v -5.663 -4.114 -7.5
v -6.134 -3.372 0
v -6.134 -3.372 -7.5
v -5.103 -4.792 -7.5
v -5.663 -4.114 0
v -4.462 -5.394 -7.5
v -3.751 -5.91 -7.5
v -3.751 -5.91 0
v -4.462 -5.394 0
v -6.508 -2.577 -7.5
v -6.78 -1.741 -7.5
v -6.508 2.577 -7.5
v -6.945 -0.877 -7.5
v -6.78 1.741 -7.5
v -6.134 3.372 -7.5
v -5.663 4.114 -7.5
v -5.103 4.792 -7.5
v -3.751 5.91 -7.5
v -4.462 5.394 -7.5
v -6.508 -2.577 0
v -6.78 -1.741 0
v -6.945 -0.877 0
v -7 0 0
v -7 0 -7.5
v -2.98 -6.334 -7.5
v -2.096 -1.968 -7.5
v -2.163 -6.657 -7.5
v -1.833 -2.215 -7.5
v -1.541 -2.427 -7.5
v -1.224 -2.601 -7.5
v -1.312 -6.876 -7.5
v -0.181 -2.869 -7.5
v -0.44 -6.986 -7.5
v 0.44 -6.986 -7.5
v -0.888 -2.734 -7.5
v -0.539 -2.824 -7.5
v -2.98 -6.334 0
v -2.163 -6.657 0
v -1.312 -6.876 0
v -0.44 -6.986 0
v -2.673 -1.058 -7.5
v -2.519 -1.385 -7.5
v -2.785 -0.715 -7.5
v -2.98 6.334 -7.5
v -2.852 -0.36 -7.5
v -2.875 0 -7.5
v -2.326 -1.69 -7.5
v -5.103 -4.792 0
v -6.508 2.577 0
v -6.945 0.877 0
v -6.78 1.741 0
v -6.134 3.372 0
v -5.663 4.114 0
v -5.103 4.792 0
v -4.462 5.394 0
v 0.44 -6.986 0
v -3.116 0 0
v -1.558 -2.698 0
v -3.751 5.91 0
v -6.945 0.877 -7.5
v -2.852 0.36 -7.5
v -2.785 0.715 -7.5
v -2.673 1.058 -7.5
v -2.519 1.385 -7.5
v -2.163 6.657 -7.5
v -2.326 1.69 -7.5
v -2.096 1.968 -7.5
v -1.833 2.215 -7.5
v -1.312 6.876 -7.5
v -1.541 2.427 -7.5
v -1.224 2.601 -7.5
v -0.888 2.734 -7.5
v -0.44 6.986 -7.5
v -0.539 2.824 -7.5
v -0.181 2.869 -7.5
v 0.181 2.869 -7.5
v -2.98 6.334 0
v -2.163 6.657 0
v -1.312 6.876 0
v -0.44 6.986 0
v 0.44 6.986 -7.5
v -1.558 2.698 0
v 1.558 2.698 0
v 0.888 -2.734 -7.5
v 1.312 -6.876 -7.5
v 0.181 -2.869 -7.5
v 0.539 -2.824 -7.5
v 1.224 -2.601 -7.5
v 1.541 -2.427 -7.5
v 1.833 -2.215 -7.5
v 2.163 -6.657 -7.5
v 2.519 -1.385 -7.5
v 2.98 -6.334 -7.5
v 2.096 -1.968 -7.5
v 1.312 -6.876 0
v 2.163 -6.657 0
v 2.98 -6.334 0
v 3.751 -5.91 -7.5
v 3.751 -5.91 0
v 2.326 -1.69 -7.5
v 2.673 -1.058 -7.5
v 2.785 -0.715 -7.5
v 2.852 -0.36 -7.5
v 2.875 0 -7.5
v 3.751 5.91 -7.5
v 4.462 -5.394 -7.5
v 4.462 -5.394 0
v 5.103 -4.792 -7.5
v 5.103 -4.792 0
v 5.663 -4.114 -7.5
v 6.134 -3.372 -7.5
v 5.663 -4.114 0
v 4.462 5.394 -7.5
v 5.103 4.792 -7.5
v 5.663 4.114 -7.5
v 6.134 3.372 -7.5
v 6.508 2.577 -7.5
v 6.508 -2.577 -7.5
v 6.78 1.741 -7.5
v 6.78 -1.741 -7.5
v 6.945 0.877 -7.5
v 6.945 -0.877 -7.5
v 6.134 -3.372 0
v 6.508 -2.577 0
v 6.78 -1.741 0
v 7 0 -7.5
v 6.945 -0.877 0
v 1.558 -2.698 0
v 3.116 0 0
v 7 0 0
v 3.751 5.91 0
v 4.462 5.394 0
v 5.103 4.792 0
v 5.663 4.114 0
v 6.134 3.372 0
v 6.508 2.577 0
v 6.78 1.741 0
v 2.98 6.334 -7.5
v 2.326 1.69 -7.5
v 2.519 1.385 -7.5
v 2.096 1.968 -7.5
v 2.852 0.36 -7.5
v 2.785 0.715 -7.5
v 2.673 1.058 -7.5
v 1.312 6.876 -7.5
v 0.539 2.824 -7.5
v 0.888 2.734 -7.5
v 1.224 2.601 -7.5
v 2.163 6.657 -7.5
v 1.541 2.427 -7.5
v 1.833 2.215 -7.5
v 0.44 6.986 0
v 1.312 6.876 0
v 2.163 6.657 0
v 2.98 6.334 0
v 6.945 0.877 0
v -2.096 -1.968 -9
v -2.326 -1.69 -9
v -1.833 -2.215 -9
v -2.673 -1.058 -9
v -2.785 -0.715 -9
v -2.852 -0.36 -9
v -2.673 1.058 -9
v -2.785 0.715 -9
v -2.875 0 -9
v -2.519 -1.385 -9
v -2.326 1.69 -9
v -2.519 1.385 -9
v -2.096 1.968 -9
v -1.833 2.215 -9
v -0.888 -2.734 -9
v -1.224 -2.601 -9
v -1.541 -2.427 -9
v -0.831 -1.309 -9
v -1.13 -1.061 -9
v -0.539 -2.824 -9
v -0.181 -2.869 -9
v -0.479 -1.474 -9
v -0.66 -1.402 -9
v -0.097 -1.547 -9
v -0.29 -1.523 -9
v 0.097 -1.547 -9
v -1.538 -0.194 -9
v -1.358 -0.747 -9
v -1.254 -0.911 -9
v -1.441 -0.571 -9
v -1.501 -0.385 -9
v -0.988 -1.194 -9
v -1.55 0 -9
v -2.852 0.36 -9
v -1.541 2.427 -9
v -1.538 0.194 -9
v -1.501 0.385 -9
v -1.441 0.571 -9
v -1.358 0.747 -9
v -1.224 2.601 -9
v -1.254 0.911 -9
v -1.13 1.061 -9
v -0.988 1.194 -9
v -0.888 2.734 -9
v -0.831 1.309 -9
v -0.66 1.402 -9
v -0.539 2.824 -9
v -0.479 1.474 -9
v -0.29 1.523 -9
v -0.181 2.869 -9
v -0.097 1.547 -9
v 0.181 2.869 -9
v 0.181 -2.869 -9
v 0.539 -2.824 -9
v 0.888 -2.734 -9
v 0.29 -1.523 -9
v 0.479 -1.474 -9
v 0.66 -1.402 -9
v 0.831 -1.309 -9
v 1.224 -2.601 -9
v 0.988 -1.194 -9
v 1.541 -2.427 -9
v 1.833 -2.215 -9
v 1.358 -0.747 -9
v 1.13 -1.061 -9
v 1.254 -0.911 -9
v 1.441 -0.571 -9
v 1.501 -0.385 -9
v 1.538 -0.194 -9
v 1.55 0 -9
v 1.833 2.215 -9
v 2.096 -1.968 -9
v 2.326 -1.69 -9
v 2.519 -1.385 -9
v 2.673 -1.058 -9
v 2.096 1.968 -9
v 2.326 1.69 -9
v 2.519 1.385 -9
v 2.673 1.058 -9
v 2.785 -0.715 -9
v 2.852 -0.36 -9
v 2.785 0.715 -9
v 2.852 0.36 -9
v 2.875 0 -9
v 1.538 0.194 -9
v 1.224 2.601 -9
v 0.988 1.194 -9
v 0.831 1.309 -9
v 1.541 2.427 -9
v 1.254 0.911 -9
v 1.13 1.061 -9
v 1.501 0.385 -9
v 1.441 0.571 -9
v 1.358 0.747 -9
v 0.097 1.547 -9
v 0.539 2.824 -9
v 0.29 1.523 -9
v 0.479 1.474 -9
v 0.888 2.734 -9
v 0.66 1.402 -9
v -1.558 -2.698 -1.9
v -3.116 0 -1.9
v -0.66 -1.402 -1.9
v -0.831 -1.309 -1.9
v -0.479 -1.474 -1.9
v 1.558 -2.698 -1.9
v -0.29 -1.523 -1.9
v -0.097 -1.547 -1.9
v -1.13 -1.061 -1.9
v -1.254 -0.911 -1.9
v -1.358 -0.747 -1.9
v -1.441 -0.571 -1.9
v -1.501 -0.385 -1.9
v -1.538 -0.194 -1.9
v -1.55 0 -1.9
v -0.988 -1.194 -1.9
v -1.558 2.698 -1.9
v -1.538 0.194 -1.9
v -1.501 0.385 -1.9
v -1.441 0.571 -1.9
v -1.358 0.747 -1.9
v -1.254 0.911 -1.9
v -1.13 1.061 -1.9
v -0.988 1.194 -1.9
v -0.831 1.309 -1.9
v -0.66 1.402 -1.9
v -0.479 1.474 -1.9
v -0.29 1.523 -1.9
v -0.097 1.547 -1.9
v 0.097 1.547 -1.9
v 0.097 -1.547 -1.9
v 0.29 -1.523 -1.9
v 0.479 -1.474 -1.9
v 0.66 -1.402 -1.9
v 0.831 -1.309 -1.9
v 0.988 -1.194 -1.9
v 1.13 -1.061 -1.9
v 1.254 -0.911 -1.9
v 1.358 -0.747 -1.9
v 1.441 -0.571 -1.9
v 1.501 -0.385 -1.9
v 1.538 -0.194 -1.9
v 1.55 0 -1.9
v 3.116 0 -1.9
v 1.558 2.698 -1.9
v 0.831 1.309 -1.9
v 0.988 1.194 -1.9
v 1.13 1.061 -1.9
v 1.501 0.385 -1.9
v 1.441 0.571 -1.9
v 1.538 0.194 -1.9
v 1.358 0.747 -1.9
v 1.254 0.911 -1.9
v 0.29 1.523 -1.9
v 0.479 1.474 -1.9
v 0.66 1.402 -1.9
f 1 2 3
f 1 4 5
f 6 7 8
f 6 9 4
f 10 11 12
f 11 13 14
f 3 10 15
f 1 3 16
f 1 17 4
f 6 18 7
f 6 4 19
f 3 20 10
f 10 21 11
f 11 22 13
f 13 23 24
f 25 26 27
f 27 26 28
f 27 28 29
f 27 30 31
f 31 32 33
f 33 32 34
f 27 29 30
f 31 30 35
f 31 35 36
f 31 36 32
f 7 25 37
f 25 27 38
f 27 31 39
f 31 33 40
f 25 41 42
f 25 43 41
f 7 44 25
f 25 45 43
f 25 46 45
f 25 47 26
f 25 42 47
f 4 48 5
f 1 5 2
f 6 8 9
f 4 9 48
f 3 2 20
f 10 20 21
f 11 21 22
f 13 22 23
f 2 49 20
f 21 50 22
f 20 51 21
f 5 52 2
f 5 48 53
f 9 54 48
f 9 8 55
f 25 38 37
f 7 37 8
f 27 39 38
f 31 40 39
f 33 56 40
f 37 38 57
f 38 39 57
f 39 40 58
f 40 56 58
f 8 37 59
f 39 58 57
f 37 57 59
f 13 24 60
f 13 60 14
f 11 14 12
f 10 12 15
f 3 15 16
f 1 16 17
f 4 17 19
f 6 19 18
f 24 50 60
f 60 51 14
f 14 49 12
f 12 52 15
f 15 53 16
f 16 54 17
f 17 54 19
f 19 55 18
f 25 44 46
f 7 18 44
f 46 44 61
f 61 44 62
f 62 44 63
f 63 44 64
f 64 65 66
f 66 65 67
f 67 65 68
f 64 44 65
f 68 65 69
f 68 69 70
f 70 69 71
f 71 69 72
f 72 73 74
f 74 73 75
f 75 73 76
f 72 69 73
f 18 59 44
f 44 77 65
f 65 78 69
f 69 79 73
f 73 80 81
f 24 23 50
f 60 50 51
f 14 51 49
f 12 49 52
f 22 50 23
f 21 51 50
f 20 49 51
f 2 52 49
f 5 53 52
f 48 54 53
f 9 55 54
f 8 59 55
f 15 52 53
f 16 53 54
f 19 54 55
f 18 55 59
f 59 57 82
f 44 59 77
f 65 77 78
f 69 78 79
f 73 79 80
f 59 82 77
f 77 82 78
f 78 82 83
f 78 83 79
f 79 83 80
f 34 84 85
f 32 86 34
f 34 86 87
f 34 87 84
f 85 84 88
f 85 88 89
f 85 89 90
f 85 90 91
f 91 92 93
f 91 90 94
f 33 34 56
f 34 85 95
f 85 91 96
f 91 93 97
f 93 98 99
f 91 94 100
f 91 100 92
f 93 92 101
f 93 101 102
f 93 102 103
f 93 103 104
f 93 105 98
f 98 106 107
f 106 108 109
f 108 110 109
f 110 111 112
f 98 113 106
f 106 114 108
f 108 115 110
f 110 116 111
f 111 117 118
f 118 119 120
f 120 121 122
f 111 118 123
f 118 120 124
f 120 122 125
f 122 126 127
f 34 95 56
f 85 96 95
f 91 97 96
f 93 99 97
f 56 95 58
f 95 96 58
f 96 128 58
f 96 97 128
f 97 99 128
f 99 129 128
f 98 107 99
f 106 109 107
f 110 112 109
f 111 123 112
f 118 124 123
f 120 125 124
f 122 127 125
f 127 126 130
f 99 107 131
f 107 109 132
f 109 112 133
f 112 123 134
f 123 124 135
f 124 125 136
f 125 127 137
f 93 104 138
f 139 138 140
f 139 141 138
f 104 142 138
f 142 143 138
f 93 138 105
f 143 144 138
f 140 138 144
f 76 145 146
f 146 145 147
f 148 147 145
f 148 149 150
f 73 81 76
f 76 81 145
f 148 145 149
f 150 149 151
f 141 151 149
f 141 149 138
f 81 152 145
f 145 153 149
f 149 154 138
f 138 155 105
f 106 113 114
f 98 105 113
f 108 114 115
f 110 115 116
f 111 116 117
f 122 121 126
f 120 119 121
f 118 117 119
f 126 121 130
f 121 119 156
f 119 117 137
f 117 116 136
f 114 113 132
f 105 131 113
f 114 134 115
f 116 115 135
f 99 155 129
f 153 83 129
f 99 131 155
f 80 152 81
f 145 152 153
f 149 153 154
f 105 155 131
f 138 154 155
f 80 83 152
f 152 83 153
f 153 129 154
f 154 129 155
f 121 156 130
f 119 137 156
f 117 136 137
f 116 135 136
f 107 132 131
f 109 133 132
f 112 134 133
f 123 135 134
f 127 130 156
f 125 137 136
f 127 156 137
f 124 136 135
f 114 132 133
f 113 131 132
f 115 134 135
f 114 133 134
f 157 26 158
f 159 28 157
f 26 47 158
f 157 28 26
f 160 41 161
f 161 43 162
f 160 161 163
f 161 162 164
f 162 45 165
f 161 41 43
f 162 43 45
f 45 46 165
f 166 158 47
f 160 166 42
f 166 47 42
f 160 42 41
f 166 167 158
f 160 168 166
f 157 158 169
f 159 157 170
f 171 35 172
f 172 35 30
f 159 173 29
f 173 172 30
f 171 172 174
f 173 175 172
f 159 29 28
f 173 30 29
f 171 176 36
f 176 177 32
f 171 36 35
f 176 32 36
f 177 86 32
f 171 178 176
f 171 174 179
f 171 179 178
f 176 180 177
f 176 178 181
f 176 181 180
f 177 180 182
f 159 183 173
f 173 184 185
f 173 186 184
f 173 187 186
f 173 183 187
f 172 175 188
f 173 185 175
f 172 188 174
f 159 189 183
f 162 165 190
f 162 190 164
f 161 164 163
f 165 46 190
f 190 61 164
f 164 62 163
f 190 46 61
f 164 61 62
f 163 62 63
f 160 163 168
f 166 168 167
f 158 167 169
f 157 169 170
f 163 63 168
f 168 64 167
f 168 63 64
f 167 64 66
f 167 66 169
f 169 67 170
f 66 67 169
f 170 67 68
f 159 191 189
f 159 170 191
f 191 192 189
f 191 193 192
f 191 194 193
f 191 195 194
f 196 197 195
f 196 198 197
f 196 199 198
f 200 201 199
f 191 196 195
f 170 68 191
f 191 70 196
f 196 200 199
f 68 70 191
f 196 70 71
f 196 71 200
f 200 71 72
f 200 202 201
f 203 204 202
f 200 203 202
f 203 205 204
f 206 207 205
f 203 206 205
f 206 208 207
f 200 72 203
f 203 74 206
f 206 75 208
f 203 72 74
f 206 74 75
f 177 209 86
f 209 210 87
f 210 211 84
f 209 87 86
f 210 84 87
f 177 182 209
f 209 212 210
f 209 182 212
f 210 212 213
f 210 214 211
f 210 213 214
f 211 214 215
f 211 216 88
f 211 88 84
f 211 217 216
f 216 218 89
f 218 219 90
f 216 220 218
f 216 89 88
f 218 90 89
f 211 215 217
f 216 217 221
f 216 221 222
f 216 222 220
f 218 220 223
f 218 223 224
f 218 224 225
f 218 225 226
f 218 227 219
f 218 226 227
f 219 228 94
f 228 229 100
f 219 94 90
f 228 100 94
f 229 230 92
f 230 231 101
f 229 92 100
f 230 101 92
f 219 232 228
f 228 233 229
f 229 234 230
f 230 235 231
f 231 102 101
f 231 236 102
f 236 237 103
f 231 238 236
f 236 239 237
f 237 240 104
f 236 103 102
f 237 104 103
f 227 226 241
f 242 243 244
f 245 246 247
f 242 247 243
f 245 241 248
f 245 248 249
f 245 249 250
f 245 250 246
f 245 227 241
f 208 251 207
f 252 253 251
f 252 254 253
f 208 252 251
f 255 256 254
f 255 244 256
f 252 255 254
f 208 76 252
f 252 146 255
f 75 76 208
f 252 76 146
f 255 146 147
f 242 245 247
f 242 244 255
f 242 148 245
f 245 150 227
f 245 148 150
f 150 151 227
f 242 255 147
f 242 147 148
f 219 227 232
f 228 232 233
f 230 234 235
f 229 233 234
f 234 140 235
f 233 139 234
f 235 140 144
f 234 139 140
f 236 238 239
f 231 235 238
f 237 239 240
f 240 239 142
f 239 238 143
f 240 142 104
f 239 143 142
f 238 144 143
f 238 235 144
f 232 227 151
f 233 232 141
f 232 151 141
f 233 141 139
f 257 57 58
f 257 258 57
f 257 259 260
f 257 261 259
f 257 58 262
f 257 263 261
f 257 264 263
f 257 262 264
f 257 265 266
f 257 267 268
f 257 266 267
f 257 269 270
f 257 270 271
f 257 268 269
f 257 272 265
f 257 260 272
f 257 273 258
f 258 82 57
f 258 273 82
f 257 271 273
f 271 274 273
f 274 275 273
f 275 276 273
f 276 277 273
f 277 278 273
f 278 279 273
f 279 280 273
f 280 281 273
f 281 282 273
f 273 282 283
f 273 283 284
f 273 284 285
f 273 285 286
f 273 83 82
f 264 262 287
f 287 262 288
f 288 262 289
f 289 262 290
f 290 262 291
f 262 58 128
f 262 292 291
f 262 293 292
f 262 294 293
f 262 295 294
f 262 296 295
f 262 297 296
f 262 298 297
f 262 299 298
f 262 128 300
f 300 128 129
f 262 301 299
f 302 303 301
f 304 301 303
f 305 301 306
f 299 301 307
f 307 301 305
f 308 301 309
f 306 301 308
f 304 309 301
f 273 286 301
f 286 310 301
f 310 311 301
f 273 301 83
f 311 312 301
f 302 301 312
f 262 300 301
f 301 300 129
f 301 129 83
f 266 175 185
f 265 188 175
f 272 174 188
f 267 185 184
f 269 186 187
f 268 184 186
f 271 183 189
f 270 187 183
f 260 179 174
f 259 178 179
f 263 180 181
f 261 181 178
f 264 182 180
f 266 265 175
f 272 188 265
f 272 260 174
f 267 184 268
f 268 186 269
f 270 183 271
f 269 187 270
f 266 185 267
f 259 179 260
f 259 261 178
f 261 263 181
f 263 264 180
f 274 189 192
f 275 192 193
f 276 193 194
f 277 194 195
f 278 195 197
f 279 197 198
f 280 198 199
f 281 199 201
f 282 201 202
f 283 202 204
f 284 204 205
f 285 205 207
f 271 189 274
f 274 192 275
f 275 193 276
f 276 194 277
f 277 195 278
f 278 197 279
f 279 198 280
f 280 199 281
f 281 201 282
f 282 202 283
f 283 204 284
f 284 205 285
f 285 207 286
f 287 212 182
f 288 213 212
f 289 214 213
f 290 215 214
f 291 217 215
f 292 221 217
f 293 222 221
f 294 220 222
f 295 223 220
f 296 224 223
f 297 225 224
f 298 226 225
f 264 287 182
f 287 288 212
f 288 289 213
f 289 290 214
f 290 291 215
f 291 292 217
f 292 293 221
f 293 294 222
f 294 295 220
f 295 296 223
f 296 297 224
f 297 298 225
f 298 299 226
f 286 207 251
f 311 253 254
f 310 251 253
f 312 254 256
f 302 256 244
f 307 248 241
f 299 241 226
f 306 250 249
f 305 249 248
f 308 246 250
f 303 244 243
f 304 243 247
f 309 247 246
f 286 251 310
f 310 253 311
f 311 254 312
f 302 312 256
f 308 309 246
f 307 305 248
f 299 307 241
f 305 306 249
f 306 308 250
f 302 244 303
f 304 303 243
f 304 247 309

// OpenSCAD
$fn = 50;


difference() {
	union() {
		translate(v = [0, 0, -7.5000000000]) {
			cylinder(h = 7.5000000000, r = 7.0000000000);
		}
		#translate(v = [0, 0, -9.0000000000]) {
			cylinder(h = 9, r = 2.8750000000);
		}
	}
	union() {
		translate(v = [0, 0, 0]) {
			rotate(a = [0, 0, 0]) {
				difference() {
					union() {
						translate(v = [0, 0, -1.9000000000]) {
							linear_extrude(height = 1.9000000000) {
								polygon(points = [[3.1158000000, 0.0000000000], [1.5579000000, 2.6983619531], [-1.5579000000, 2.6983619531], [-3.1158000000, 0.0000000000], [-1.5579000000, -2.6983619531], [1.5579000000, -2.6983619531]]);
							}
						}
					}
					union();
				}
			}
		}
		#translate(v = [0, 0, -100.0000000000]) {
			cylinder(h = 200, r = 1.5500000000);
		}
	}
}
